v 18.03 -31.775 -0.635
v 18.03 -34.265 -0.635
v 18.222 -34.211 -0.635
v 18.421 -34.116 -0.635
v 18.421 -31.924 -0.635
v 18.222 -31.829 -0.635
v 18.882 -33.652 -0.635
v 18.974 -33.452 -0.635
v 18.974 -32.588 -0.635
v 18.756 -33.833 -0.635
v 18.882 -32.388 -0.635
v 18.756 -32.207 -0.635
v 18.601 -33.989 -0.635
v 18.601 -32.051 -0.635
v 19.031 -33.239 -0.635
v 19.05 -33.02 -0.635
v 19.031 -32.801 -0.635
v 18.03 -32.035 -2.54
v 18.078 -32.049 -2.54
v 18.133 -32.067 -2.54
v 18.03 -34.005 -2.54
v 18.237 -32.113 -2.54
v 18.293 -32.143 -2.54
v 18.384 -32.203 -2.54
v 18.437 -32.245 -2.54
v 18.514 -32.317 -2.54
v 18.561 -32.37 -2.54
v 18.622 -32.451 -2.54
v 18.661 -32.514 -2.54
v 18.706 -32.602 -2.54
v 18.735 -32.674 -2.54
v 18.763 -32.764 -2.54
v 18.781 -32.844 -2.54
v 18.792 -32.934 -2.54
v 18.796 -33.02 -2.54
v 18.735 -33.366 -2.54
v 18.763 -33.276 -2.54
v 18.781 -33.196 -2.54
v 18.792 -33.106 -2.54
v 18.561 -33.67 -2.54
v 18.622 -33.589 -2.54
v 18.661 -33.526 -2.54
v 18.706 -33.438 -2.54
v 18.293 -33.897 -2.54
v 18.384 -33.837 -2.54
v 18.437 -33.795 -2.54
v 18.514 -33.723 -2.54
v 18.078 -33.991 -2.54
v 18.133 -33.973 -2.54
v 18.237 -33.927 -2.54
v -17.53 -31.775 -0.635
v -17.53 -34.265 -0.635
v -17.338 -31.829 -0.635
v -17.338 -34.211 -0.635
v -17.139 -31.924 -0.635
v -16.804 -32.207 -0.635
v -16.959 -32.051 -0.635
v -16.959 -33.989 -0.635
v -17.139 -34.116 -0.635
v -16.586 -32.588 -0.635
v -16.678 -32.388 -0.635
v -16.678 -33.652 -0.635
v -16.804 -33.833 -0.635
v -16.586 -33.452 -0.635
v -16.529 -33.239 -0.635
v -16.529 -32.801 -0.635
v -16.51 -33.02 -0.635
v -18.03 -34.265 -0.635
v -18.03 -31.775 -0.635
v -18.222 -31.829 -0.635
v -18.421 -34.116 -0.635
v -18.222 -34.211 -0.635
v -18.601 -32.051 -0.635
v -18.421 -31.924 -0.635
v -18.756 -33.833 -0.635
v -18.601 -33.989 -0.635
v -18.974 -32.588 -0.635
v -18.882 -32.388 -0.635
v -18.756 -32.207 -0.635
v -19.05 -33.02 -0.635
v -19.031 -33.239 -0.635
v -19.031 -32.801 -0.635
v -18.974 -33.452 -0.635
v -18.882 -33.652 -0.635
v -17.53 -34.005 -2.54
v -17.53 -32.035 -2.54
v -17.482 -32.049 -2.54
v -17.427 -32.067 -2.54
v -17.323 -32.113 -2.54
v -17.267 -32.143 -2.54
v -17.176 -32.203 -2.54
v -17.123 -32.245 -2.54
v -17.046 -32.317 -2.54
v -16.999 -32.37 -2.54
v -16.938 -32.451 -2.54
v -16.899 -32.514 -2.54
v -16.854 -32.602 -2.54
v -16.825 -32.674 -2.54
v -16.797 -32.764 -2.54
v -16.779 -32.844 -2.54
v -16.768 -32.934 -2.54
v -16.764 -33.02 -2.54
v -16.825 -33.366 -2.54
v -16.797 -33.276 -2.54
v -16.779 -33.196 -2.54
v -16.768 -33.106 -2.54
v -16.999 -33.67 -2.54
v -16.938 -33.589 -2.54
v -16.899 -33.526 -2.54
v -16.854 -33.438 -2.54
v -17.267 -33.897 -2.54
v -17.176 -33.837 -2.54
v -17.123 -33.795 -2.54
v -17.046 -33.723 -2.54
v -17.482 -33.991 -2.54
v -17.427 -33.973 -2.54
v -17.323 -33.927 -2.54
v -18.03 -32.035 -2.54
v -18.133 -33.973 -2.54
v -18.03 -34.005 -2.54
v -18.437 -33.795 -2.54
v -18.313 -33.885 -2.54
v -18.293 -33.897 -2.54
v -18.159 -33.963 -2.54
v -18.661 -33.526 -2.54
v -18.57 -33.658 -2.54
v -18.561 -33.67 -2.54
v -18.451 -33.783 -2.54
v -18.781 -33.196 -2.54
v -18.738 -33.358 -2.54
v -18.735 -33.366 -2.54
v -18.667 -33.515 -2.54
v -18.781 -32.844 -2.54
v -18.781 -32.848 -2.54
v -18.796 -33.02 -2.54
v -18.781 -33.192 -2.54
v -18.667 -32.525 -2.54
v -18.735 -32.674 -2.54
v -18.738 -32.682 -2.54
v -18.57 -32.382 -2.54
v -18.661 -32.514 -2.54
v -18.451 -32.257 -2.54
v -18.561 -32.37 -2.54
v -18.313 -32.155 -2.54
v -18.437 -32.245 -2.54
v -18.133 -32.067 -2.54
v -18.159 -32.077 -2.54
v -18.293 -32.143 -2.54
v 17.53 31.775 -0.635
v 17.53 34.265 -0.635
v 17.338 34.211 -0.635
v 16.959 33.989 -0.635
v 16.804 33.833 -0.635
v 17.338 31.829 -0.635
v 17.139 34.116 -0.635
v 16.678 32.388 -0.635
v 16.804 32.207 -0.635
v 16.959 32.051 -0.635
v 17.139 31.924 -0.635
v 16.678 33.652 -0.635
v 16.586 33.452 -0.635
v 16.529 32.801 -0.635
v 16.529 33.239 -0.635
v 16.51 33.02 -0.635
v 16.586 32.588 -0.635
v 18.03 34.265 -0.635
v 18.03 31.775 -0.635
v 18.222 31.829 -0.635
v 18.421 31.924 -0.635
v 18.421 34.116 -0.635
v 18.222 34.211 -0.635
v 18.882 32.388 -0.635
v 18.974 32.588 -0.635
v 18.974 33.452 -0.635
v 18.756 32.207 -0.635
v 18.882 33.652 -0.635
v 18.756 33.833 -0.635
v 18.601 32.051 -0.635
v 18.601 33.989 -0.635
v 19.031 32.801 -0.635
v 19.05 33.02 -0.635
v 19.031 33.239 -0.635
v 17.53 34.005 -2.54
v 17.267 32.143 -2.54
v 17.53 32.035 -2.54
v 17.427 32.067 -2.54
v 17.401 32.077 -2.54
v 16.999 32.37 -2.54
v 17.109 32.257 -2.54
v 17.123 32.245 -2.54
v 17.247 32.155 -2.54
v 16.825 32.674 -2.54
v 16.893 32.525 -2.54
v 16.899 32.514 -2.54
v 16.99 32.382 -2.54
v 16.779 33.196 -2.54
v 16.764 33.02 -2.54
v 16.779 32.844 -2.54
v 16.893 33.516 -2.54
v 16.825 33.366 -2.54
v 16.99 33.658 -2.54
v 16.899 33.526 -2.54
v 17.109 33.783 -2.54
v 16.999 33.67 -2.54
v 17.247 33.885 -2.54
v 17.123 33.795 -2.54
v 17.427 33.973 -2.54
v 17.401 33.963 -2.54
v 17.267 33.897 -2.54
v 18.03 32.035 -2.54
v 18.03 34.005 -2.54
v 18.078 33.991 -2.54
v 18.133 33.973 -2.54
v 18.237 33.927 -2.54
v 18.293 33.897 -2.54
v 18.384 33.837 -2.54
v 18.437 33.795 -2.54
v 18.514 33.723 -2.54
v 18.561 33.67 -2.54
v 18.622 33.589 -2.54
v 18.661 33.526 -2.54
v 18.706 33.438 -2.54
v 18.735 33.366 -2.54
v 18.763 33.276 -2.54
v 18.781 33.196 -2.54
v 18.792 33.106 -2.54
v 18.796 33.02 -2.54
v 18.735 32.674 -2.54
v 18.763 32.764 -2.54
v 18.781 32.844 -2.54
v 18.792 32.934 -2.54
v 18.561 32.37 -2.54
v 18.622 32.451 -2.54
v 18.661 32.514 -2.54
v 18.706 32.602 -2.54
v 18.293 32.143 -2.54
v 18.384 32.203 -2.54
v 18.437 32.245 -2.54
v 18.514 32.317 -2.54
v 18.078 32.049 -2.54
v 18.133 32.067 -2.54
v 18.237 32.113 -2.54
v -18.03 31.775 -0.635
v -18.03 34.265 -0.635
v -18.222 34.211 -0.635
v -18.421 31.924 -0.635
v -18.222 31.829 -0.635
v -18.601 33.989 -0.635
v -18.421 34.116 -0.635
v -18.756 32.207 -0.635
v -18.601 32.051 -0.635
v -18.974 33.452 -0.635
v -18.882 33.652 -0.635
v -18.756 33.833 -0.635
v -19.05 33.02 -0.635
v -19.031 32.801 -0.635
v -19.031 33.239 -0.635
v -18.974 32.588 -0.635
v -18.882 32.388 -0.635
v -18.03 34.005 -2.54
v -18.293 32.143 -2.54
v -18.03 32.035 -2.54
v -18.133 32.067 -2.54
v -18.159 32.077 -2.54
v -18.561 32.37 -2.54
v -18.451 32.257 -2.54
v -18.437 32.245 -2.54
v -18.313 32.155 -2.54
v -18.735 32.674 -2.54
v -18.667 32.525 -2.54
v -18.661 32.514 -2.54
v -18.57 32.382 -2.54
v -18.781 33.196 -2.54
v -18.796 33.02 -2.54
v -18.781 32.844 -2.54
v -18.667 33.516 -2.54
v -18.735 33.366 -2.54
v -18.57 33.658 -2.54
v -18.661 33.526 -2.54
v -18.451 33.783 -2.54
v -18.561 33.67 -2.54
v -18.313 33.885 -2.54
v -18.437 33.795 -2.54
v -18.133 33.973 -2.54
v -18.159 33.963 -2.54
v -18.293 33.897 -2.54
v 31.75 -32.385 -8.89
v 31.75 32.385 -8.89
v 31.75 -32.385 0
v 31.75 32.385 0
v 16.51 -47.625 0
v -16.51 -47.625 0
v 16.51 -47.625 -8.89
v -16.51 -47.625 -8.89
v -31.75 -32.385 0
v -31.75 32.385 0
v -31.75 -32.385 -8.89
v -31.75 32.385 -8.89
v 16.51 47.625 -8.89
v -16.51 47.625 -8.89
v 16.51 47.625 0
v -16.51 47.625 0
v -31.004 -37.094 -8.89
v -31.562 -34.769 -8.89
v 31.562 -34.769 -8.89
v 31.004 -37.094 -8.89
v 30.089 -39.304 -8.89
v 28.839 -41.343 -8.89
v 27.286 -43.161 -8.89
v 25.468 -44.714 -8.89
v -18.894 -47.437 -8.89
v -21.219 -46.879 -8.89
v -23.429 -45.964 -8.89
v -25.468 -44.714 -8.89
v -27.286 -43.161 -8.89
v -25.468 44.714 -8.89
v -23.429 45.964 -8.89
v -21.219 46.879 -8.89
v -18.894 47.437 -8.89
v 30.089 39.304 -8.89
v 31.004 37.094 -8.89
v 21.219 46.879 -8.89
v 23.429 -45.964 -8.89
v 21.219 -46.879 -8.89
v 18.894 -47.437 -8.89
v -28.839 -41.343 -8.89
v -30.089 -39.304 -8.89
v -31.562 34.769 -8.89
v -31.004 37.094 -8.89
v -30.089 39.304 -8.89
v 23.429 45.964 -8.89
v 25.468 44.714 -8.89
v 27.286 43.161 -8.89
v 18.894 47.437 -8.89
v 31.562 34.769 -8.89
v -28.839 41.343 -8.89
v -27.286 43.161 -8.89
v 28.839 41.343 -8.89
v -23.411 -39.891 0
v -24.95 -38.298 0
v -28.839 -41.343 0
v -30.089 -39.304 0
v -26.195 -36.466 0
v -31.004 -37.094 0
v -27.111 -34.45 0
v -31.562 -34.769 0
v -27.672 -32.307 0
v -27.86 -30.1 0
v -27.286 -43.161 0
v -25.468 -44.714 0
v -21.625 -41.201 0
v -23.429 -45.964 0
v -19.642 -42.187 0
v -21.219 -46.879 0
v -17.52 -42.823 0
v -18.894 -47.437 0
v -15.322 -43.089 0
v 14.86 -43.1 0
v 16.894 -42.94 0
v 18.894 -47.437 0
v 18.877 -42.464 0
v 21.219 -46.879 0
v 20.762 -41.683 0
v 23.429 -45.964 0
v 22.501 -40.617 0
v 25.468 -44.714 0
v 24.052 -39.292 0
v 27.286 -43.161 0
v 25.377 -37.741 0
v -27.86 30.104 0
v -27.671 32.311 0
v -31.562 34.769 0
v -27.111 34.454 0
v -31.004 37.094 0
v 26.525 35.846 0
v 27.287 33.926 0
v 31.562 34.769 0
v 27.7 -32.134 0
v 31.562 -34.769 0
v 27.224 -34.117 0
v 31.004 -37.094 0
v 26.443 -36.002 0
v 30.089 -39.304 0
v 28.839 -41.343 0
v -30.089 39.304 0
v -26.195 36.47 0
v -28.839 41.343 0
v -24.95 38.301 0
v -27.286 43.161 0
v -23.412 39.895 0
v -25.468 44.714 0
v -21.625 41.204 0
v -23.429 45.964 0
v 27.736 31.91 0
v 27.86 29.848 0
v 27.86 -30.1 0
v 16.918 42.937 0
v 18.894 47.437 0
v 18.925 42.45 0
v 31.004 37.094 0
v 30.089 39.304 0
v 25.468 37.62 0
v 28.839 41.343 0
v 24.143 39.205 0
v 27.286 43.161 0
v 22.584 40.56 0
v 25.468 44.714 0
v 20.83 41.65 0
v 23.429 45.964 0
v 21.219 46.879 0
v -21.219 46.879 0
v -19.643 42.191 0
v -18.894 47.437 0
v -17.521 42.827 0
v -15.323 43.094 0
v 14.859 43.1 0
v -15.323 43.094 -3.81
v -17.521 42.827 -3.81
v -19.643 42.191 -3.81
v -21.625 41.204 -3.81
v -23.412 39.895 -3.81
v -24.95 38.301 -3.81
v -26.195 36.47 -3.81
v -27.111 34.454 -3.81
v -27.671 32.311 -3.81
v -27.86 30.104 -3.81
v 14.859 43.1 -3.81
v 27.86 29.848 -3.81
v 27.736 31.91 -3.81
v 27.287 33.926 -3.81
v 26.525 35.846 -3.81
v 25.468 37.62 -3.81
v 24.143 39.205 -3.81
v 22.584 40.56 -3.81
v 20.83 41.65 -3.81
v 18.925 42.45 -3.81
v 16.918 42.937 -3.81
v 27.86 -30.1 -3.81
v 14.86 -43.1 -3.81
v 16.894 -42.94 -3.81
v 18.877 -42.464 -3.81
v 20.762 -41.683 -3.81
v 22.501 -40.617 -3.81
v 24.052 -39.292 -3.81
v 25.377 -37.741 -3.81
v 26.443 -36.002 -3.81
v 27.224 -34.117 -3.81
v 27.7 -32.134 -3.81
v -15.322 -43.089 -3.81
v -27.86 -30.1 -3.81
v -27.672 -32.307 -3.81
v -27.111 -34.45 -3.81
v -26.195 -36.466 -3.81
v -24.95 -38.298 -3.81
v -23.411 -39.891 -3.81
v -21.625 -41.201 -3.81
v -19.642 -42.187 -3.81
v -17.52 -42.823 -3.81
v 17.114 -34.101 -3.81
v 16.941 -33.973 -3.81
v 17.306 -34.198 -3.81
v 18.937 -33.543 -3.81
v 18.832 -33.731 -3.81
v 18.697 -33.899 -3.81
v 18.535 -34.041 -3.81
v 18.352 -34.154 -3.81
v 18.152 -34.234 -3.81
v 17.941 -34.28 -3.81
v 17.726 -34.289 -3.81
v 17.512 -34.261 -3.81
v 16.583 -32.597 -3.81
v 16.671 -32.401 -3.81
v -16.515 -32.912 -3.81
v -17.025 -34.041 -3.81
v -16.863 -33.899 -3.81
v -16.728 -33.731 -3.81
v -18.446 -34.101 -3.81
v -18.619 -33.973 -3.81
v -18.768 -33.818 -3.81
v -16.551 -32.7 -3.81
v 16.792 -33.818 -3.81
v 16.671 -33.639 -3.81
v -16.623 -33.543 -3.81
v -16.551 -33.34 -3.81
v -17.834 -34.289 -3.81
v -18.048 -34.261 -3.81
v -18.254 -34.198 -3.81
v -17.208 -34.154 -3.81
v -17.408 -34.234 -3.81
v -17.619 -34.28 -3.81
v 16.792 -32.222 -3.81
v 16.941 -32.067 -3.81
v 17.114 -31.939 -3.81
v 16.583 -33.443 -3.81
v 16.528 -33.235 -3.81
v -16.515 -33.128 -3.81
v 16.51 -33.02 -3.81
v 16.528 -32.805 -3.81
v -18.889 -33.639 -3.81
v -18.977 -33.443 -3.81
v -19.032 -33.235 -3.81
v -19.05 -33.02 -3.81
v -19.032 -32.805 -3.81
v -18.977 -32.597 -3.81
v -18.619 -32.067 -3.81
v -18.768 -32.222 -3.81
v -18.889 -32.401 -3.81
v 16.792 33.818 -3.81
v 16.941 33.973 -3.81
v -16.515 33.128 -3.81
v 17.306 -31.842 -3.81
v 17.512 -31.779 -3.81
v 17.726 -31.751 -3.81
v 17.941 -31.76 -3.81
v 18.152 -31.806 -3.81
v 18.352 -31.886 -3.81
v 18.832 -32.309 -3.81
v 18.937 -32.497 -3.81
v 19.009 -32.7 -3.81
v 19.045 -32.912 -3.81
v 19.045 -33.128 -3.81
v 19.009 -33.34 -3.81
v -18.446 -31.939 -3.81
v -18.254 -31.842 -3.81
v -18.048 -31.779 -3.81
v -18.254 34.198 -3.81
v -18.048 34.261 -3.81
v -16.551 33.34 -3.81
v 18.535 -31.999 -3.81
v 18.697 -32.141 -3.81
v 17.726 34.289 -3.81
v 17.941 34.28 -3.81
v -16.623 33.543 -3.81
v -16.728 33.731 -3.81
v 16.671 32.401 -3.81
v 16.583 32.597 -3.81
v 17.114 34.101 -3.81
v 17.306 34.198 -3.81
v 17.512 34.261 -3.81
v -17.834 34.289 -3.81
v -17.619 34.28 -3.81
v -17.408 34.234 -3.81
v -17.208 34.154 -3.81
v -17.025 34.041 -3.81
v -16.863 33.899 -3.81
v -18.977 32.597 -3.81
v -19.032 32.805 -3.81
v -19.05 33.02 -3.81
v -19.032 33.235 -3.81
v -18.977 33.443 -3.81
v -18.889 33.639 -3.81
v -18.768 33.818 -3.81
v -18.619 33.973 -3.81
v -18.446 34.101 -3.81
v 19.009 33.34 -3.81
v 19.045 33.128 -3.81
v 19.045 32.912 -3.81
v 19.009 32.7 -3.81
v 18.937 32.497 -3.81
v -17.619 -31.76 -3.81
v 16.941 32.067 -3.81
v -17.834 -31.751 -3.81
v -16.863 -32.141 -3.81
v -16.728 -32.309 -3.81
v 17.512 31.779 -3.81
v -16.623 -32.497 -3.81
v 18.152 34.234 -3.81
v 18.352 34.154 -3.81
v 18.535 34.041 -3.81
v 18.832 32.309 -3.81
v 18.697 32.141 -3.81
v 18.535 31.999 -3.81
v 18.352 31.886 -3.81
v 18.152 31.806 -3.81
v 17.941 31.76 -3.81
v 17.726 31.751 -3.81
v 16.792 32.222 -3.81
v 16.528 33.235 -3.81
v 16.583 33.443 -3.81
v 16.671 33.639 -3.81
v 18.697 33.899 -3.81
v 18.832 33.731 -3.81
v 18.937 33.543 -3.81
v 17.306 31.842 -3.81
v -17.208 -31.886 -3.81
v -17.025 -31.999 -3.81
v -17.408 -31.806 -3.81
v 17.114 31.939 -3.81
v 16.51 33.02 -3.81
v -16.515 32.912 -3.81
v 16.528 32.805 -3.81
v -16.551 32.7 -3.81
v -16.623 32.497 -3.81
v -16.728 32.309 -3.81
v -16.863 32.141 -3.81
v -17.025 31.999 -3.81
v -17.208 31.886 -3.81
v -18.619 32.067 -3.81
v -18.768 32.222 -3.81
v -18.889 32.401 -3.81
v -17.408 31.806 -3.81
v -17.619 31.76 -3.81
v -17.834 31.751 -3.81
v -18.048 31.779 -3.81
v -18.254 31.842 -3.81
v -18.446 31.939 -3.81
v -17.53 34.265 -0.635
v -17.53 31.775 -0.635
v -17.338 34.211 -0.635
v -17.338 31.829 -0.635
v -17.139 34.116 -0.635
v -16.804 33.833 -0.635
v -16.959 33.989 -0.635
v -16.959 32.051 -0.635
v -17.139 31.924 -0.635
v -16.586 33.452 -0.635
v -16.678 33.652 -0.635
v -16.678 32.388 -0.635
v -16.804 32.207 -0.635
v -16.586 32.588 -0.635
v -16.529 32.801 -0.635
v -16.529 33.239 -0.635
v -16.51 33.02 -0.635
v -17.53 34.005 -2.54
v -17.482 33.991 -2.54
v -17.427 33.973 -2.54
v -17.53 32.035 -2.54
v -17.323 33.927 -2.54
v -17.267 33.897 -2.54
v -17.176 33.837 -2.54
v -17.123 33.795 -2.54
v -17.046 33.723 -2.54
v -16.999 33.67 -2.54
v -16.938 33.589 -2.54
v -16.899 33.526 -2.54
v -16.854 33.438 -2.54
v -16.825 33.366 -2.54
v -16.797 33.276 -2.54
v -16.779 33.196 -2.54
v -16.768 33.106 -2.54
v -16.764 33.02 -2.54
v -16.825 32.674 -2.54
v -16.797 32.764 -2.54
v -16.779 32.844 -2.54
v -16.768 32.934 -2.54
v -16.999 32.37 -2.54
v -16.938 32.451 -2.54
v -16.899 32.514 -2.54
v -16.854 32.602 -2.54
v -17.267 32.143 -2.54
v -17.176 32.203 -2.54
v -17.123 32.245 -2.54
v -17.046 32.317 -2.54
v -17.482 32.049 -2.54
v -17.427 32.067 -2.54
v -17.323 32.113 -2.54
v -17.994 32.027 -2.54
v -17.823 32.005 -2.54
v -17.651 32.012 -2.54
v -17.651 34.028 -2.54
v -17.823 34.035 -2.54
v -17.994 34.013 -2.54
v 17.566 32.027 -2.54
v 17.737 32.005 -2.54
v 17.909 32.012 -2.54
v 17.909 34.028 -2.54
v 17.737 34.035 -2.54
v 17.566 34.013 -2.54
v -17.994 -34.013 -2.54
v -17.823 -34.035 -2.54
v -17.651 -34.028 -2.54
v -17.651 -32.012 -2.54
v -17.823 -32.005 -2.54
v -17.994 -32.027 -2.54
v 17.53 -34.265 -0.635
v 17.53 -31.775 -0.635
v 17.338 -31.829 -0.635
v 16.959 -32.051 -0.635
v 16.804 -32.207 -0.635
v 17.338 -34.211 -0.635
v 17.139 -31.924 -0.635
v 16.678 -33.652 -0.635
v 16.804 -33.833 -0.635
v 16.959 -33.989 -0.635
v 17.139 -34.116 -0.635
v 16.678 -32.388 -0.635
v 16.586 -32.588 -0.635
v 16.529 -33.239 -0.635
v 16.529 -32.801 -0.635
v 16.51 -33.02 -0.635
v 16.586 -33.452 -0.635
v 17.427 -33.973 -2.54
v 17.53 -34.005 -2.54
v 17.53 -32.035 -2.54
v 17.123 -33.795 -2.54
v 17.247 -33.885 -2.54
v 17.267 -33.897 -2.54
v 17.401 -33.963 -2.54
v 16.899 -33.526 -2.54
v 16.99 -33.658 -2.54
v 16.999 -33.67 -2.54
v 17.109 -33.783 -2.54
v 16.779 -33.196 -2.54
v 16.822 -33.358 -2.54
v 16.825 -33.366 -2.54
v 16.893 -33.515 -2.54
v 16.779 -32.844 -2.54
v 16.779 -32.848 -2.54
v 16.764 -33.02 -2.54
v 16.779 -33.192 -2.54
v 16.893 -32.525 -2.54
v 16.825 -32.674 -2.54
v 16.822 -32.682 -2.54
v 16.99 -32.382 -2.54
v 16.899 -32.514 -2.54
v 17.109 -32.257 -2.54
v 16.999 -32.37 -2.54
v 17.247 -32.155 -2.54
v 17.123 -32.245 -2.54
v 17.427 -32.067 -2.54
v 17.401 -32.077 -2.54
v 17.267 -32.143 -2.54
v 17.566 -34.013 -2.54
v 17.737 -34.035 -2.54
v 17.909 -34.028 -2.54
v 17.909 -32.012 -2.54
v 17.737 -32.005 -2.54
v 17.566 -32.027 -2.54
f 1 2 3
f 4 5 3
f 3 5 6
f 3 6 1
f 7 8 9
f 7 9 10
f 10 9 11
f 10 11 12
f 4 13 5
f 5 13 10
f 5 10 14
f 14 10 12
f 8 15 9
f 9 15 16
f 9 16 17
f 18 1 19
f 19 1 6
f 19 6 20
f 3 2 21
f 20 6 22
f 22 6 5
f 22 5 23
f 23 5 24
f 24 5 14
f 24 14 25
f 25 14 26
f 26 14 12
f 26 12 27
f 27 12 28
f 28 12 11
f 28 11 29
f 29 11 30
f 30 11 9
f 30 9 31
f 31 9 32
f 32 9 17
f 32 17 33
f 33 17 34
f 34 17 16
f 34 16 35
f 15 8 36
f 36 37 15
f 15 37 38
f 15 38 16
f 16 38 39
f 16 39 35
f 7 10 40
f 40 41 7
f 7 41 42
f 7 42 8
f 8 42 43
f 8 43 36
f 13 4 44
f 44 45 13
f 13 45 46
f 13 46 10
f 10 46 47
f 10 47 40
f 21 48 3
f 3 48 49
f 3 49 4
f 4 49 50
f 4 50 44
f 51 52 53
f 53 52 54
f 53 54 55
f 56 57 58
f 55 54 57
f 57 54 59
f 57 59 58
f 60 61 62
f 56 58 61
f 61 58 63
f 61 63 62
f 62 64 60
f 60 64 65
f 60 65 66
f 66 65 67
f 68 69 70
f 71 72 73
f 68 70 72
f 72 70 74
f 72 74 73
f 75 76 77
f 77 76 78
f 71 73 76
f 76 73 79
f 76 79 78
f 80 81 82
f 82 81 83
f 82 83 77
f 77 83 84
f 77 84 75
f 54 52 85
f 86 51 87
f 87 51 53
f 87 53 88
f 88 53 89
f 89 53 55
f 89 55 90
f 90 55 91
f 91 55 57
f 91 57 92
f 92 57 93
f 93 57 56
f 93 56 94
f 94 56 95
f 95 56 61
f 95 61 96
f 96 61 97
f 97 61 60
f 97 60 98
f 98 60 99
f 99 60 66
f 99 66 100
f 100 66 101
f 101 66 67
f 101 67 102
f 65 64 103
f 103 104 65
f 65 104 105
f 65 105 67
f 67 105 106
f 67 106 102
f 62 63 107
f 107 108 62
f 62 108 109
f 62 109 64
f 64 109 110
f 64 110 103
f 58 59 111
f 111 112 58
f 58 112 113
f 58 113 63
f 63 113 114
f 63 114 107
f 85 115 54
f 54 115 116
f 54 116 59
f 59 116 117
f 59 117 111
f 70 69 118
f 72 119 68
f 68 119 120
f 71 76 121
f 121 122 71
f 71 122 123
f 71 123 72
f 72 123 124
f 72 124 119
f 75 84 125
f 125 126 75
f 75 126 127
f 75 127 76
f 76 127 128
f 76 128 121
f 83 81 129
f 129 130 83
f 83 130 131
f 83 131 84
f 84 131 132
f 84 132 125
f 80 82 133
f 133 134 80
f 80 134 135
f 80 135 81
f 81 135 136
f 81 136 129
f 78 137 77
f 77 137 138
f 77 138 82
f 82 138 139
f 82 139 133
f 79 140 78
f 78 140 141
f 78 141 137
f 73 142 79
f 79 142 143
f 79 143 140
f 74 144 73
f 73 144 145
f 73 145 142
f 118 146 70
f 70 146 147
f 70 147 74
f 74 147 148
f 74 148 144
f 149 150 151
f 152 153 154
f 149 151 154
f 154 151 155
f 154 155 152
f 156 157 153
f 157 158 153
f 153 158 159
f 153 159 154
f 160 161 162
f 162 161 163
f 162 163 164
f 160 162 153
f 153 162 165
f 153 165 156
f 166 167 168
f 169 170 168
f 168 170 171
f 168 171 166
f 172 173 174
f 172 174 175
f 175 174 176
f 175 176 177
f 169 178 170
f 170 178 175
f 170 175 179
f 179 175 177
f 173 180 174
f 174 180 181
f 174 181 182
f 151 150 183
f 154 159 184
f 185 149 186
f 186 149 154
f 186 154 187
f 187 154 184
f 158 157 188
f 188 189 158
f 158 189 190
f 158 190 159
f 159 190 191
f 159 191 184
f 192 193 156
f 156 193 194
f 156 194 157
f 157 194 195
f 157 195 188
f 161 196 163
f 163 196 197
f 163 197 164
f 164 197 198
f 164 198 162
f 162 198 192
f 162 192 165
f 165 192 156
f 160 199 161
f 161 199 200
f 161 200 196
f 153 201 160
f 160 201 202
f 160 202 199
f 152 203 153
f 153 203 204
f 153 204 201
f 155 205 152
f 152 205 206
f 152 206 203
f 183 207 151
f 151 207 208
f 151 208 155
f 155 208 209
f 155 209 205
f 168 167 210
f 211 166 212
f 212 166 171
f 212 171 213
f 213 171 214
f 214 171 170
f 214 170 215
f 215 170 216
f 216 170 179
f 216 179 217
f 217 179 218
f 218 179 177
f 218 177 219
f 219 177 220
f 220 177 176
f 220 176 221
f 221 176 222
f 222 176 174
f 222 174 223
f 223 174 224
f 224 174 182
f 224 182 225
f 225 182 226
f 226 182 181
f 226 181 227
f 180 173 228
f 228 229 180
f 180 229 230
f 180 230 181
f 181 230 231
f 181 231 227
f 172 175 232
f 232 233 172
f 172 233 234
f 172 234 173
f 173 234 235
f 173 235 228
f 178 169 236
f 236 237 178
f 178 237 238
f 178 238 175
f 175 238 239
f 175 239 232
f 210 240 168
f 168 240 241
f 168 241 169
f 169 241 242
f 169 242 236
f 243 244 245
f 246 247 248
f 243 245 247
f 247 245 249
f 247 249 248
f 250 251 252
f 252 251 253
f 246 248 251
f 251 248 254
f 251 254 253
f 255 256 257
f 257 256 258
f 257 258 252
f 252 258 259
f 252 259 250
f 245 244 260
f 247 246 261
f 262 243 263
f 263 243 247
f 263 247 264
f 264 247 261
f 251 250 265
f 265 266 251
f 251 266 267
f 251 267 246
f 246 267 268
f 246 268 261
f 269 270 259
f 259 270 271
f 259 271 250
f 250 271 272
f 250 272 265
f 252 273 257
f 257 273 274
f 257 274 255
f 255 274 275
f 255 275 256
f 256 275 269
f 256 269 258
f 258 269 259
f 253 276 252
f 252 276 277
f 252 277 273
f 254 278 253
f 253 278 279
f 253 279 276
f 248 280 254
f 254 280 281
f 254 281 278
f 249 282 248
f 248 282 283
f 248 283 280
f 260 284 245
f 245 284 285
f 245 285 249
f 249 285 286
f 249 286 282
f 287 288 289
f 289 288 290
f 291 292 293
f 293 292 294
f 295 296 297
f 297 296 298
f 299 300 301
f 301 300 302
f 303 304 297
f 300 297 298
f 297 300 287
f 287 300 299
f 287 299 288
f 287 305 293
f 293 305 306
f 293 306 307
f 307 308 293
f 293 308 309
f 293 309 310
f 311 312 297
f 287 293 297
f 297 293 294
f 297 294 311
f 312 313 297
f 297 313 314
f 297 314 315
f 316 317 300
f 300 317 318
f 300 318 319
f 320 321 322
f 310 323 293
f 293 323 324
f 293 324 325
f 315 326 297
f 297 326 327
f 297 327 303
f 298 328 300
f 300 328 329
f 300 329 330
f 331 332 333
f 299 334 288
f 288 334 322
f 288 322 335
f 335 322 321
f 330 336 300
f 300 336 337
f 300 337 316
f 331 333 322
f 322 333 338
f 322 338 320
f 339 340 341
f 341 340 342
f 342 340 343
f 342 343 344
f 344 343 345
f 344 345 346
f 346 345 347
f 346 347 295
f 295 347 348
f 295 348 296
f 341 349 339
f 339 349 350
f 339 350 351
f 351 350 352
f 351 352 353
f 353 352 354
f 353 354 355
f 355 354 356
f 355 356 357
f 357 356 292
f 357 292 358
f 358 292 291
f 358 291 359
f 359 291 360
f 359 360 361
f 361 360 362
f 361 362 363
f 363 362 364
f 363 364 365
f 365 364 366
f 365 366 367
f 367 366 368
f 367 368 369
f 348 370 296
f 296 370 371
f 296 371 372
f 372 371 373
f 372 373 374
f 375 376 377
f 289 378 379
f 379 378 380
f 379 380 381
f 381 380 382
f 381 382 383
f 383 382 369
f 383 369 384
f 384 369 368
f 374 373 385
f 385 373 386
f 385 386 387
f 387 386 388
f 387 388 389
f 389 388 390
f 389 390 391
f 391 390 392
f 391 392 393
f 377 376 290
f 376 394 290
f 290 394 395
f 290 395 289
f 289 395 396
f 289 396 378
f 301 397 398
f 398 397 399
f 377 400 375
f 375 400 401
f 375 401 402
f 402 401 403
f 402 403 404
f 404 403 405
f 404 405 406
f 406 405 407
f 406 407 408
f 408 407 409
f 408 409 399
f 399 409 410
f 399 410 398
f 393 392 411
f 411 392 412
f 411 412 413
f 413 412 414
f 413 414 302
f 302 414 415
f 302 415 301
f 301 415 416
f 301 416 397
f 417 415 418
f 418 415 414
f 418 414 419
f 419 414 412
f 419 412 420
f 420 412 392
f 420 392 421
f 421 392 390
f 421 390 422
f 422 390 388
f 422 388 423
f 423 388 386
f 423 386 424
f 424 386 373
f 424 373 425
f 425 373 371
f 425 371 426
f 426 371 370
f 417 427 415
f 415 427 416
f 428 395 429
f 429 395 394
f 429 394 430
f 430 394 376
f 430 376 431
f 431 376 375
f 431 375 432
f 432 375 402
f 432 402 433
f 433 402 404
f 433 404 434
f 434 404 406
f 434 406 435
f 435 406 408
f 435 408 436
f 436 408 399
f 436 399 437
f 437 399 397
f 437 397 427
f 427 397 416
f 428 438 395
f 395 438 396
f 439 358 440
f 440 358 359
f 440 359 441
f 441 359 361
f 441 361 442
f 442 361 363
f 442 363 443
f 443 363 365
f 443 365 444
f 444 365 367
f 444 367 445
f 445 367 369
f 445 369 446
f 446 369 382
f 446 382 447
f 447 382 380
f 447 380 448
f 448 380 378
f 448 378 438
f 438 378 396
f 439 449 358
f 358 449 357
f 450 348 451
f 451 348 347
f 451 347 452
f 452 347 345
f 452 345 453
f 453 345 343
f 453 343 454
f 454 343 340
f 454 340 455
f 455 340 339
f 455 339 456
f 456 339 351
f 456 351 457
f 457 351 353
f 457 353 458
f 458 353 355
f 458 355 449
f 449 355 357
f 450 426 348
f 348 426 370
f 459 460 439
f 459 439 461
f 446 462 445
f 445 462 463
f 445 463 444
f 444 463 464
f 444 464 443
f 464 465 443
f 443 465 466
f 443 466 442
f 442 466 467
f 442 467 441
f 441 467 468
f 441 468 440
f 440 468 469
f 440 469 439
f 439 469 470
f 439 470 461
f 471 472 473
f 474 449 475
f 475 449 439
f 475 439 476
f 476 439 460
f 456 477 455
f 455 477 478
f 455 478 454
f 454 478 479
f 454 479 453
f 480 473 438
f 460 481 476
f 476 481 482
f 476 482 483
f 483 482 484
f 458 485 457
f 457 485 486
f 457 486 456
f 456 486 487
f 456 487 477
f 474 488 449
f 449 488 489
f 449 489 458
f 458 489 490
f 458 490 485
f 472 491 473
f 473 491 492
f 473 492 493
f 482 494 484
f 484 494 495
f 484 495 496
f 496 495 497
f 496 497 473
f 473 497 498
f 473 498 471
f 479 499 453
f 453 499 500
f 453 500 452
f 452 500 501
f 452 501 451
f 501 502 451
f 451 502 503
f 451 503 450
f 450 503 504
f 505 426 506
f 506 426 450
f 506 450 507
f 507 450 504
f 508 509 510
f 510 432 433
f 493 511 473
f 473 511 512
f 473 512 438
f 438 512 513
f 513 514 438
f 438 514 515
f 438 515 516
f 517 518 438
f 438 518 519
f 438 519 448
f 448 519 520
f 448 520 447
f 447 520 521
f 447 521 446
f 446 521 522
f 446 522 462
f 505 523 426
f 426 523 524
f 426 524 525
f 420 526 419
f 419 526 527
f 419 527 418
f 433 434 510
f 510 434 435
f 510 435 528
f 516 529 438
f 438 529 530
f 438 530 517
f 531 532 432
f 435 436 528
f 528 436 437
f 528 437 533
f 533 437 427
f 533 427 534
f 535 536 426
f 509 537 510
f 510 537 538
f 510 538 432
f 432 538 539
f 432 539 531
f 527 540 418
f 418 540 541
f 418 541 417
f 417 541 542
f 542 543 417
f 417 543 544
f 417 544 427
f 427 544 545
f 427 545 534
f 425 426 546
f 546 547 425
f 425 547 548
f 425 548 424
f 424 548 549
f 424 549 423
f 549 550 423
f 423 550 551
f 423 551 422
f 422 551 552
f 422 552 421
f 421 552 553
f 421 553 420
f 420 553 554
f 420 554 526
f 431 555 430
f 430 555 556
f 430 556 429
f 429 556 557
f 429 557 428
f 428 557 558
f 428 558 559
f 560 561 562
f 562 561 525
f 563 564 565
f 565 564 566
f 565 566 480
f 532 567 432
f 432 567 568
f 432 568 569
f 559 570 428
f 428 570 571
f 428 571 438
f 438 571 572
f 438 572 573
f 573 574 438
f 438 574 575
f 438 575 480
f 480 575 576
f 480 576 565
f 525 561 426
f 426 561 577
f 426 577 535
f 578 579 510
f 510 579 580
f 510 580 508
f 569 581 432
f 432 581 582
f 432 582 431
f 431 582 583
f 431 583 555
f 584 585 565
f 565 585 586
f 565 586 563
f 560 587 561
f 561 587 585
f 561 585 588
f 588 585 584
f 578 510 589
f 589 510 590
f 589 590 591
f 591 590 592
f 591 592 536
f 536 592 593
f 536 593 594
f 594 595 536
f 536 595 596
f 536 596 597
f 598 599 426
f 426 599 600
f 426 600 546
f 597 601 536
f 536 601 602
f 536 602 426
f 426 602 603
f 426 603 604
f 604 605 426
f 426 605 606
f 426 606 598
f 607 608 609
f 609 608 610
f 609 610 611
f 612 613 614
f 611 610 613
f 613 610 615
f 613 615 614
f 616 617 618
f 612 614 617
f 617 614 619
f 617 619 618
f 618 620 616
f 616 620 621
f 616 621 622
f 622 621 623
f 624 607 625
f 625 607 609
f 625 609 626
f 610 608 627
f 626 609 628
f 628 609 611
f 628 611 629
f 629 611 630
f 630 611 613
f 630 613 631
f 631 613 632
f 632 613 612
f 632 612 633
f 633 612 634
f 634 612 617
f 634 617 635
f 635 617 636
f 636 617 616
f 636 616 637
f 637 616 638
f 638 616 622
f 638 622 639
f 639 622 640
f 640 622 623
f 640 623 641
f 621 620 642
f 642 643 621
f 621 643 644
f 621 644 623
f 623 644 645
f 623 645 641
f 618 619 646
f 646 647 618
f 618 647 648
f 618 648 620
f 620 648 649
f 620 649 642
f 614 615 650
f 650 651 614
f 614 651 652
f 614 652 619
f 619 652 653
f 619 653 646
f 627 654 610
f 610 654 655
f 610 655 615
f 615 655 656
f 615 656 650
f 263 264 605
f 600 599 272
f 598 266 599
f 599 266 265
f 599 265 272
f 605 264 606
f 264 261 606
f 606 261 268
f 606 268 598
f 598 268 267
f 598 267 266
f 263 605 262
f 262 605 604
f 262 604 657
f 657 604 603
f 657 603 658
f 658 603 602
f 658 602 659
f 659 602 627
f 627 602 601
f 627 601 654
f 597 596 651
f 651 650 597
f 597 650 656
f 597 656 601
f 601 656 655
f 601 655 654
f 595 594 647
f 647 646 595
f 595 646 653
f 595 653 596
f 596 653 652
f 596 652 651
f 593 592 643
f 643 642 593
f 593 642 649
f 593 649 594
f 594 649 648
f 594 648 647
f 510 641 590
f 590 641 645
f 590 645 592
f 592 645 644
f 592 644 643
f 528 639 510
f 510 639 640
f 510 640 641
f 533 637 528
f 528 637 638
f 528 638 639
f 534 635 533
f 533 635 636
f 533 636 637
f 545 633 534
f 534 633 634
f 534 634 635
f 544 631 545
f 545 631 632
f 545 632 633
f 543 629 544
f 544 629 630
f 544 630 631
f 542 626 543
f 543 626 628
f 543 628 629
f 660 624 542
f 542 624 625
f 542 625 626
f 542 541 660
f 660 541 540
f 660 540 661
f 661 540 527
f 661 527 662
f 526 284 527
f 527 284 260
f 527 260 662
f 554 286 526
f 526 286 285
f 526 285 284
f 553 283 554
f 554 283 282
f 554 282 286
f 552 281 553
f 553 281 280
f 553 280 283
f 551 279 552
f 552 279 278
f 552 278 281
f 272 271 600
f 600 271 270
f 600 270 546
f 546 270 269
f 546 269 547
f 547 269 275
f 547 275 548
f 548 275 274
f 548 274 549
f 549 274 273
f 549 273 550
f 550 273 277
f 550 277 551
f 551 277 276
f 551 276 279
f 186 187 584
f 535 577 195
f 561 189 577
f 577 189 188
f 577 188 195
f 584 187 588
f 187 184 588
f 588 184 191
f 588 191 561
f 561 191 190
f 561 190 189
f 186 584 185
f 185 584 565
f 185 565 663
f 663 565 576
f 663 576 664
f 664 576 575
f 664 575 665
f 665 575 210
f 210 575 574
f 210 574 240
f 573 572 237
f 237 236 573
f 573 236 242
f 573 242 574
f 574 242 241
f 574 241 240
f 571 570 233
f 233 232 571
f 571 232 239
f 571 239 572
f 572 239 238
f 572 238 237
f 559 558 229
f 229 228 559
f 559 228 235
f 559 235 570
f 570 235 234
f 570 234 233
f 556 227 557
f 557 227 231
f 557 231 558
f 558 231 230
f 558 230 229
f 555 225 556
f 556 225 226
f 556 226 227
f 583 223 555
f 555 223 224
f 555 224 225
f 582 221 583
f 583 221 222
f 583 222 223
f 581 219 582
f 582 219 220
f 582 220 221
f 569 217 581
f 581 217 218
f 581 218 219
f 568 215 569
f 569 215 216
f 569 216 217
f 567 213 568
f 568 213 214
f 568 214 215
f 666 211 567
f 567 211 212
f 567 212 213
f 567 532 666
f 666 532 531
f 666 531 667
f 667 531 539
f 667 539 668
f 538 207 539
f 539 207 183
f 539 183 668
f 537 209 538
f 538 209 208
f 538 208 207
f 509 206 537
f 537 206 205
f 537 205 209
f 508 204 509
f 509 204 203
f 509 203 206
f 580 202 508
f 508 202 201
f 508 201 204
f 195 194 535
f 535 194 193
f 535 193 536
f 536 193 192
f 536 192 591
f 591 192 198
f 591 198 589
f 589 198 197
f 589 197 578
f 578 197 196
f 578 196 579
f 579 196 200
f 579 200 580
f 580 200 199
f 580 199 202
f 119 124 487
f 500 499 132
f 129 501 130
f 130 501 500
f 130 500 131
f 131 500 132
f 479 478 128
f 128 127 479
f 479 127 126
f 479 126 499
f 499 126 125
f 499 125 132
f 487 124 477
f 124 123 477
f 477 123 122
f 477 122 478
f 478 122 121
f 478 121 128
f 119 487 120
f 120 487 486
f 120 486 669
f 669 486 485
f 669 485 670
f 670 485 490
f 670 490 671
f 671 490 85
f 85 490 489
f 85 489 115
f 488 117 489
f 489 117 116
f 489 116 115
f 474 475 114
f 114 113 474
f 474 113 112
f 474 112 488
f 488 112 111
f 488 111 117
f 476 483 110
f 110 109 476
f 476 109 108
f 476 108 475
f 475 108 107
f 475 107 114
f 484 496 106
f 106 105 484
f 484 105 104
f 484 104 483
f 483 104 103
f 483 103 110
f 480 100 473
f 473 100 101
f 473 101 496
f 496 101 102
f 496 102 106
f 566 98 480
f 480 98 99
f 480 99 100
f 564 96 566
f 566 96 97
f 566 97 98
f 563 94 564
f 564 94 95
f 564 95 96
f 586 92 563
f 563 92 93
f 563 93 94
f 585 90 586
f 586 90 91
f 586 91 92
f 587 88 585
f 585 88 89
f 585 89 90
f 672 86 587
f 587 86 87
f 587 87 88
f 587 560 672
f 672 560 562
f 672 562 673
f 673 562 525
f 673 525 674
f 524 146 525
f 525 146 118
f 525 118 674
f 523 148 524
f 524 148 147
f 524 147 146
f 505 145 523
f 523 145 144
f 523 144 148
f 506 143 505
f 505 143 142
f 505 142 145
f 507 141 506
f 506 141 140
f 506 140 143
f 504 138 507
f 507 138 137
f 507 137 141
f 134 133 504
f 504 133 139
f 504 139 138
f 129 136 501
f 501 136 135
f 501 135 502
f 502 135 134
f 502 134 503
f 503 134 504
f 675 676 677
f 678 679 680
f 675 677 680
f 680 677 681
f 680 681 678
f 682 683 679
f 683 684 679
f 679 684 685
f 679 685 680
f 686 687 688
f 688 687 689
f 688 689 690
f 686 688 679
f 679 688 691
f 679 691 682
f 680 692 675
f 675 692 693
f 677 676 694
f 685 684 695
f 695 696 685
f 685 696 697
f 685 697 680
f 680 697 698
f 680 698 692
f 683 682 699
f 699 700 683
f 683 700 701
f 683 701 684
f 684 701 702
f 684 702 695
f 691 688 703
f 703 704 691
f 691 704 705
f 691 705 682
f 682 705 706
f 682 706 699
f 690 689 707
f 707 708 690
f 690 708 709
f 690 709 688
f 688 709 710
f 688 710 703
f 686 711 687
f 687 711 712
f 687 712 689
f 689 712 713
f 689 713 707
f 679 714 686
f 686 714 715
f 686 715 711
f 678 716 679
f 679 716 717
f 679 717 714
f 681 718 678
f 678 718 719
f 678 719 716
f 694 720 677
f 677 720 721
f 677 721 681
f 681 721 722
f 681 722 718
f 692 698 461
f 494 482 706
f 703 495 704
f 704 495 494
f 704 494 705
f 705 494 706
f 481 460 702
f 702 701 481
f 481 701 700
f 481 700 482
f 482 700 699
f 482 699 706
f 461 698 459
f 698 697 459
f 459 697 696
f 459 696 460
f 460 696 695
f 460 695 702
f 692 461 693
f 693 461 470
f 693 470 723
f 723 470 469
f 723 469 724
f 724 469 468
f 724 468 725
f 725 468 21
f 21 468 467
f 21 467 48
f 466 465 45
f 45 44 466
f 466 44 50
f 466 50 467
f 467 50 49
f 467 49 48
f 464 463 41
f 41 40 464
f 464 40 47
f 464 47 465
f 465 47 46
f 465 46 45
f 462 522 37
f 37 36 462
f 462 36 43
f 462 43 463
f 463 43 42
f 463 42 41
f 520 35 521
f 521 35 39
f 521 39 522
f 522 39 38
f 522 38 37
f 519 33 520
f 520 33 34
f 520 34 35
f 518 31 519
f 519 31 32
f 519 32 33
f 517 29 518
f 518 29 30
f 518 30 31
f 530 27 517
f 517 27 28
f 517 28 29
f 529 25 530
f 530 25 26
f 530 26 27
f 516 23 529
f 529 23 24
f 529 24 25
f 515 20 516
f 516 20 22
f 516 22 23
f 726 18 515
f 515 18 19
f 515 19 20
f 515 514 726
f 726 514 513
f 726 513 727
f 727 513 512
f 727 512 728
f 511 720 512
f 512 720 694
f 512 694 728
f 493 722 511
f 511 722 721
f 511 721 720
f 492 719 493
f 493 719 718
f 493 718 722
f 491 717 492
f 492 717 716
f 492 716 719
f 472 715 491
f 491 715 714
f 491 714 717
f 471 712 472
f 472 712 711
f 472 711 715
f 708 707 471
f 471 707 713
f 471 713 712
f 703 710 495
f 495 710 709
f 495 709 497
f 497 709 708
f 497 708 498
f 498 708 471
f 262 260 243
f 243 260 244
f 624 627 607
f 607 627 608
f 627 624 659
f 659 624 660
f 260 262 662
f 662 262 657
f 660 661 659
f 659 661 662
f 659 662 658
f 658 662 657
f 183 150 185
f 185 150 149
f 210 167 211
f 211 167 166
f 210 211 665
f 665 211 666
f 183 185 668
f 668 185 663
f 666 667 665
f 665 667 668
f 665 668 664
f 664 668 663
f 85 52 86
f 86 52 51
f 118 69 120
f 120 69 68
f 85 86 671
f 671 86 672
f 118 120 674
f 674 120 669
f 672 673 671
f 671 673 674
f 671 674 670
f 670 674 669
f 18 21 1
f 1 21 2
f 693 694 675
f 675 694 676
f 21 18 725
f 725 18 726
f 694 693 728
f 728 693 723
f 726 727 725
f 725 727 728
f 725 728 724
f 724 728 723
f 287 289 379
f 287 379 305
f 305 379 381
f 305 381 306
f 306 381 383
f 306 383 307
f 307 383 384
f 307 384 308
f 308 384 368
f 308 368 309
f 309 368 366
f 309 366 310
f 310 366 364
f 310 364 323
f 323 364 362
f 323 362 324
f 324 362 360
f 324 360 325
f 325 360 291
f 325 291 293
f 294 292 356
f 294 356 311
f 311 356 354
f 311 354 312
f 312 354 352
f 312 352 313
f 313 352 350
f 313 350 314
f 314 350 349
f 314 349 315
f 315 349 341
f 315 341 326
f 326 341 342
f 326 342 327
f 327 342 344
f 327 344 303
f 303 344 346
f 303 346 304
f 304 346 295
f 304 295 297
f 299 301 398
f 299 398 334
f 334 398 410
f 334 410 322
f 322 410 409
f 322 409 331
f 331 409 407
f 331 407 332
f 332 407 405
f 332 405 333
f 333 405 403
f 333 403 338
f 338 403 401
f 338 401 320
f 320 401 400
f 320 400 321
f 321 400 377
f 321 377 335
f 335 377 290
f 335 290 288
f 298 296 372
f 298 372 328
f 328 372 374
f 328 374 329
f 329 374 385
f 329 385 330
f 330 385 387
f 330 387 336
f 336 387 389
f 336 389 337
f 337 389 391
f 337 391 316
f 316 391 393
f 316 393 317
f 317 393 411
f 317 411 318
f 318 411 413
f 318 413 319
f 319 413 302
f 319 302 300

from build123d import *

# Parameters (mm, degrees)
SKETCH1_W                                = 63.5
SKETCH1_H                                = 95.25
BOSS_EXTRUDE1_DEPTH                      = 8.89
CUT_EXTRUDE1_DEPTH                       = 3.81
CUT_EXTRUDE2_DEPTH                       = 1.905
MIRROR2_AT_THE_SECOND_PLANE_COPY_1_DEPTH = 1.905
FILLET1_R                                = 15.24


with BuildPart() as part:
    # Sketch1 → Boss-Extrude1 (new body)
    with BuildSketch(Plane.XY):
        Rectangle(SKETCH1_W, SKETCH1_H)
    extrude(amount=-BOSS_EXTRUDE1_DEPTH)

    # Sketch4 → Cut-Extrude1 (cut)
    with BuildSketch(Plane.XY):
        with BuildLine():
            Line((-15.321546842, -43.089479105), (14.859998977, -43.1))
            ThreePointArc((14.859998977, -43.1), (24.052387544, -39.292388268), (27.86, -30.1))
            Line((27.86, -30.1), (27.86, 29.848016994))
            ThreePointArc((27.86, 29.848016994), (24.142757308, 39.204832311), (14.858601027, 43.099999609))
            Line((14.858601027, 43.099999609), (-15.322946088, 43.094305911))
            ThreePointArc((-15.322946088, 43.094305911), (-24.214524383, 39.131012084), (-27.86, 30.104475598))
            Line((-27.86, 30.104475598), (-27.86, -30.1))
            ThreePointArc((-27.86, -30.1), (-24.214594541, -39.127455295), (-15.321546842, -43.089479105))
        make_face()
    extrude(amount=-CUT_EXTRUDE1_DEPTH, mode=Mode.SUBTRACT)

    # Sketch8 → Revolve1 (revolve)
    with BuildSketch(Plane.ZX.offset(33.02)):
        Polygon((-3.81, -17.78), (-2.921, -17.78), (-0.635, -17.78), (-0.635, -16.51), (-2.54, -16.764), (-3.81, -16.51), align=None)
    revolve1 = revolve(axis=Axis((-17.78, 33.02, -3.81), (0, 0, 1)))

    # Sketch9 → Revolve2 (revolve)
    with BuildSketch(Plane.ZX.offset(33.02)):
        Polygon((-3.81, 17.78), (-2.54, 17.78), (-0.635, 17.78), (-0.635, 19.05), (-2.54, 18.796), (-3.81, 19.05), align=None)
    revolve2 = revolve(axis=Axis((17.78, 33.02, -3.81), (0, 0, 1)))

    # Mirror1: Revolve1, Revolve2 across plane
    add(revolve1.mirror(Plane.ZX))
    add(revolve2.mirror(Plane.ZX))

    # Sketch10 → Cut-Extrude2 (cut)
    with BuildSketch(Plane.XY.offset(-0.635)):
        with BuildLine():
            Line((-17.53, 31.774849407), (-17.53, 34.265150593))
            ThreePointArc((-17.53, 34.265150593), (-17.78, 34.29), (-18.03, 34.265150593))
            Line((-18.03, 34.265150593), (-18.03, 31.774849407))
            ThreePointArc((-18.03, 31.774849407), (-17.78, 31.75), (-17.53, 31.774849407))
        make_face()
    cut_extrude2 = extrude(amount=-CUT_EXTRUDE2_DEPTH, mode=Mode.SUBTRACT)

    # Mirror2: Cut-Extrude2 across plane
    add(cut_extrude2.mirror(Plane.ZX), mode=Mode.SUBTRACT)

    # Mirror2 at the second plane: Cut-Extrude2 across plane
    add(cut_extrude2.mirror(Plane(origin=(0, 0, 0), x_dir=(0, 0, 1), z_dir=(1, 0, 0))), mode=Mode.SUBTRACT)

    # Mirror2 at the second plane copy 1 sketc → Mirror2 at the second plane copy 1 (cut)
    with BuildSketch(Plane(origin=(0, 0, -0.635), x_dir=(-1, 0, 0), z_dir=(0, 0, 1))):
        with BuildLine():
            Line((-17.53, 31.774849407), (-17.53, 34.265150593))
            ThreePointArc((-17.53, 34.265150593), (-17.78, 34.29), (-18.03, 34.265150593))
            Line((-18.03, 34.265150593), (-18.03, 31.774849407))
            ThreePointArc((-18.03, 31.774849407), (-17.78, 31.75), (-17.53, 31.774849407))
        make_face()
    extrude(amount=-MIRROR2_AT_THE_SECOND_PLANE_COPY_1_DEPTH, mode=Mode.SUBTRACT)

    # Fillet1
    fillet1_edges = [part.edges().sort_by_distance(p)[0] for p in [
        (31.75, -47.625, -4.445),
        (-31.75, -47.625, -4.445),
        (31.75, 47.625, -4.445),
        (-31.75, 47.625, -4.445),
    ]]
    fillet(fillet1_edges, radius=FILLET1_R)


solid = part.part
